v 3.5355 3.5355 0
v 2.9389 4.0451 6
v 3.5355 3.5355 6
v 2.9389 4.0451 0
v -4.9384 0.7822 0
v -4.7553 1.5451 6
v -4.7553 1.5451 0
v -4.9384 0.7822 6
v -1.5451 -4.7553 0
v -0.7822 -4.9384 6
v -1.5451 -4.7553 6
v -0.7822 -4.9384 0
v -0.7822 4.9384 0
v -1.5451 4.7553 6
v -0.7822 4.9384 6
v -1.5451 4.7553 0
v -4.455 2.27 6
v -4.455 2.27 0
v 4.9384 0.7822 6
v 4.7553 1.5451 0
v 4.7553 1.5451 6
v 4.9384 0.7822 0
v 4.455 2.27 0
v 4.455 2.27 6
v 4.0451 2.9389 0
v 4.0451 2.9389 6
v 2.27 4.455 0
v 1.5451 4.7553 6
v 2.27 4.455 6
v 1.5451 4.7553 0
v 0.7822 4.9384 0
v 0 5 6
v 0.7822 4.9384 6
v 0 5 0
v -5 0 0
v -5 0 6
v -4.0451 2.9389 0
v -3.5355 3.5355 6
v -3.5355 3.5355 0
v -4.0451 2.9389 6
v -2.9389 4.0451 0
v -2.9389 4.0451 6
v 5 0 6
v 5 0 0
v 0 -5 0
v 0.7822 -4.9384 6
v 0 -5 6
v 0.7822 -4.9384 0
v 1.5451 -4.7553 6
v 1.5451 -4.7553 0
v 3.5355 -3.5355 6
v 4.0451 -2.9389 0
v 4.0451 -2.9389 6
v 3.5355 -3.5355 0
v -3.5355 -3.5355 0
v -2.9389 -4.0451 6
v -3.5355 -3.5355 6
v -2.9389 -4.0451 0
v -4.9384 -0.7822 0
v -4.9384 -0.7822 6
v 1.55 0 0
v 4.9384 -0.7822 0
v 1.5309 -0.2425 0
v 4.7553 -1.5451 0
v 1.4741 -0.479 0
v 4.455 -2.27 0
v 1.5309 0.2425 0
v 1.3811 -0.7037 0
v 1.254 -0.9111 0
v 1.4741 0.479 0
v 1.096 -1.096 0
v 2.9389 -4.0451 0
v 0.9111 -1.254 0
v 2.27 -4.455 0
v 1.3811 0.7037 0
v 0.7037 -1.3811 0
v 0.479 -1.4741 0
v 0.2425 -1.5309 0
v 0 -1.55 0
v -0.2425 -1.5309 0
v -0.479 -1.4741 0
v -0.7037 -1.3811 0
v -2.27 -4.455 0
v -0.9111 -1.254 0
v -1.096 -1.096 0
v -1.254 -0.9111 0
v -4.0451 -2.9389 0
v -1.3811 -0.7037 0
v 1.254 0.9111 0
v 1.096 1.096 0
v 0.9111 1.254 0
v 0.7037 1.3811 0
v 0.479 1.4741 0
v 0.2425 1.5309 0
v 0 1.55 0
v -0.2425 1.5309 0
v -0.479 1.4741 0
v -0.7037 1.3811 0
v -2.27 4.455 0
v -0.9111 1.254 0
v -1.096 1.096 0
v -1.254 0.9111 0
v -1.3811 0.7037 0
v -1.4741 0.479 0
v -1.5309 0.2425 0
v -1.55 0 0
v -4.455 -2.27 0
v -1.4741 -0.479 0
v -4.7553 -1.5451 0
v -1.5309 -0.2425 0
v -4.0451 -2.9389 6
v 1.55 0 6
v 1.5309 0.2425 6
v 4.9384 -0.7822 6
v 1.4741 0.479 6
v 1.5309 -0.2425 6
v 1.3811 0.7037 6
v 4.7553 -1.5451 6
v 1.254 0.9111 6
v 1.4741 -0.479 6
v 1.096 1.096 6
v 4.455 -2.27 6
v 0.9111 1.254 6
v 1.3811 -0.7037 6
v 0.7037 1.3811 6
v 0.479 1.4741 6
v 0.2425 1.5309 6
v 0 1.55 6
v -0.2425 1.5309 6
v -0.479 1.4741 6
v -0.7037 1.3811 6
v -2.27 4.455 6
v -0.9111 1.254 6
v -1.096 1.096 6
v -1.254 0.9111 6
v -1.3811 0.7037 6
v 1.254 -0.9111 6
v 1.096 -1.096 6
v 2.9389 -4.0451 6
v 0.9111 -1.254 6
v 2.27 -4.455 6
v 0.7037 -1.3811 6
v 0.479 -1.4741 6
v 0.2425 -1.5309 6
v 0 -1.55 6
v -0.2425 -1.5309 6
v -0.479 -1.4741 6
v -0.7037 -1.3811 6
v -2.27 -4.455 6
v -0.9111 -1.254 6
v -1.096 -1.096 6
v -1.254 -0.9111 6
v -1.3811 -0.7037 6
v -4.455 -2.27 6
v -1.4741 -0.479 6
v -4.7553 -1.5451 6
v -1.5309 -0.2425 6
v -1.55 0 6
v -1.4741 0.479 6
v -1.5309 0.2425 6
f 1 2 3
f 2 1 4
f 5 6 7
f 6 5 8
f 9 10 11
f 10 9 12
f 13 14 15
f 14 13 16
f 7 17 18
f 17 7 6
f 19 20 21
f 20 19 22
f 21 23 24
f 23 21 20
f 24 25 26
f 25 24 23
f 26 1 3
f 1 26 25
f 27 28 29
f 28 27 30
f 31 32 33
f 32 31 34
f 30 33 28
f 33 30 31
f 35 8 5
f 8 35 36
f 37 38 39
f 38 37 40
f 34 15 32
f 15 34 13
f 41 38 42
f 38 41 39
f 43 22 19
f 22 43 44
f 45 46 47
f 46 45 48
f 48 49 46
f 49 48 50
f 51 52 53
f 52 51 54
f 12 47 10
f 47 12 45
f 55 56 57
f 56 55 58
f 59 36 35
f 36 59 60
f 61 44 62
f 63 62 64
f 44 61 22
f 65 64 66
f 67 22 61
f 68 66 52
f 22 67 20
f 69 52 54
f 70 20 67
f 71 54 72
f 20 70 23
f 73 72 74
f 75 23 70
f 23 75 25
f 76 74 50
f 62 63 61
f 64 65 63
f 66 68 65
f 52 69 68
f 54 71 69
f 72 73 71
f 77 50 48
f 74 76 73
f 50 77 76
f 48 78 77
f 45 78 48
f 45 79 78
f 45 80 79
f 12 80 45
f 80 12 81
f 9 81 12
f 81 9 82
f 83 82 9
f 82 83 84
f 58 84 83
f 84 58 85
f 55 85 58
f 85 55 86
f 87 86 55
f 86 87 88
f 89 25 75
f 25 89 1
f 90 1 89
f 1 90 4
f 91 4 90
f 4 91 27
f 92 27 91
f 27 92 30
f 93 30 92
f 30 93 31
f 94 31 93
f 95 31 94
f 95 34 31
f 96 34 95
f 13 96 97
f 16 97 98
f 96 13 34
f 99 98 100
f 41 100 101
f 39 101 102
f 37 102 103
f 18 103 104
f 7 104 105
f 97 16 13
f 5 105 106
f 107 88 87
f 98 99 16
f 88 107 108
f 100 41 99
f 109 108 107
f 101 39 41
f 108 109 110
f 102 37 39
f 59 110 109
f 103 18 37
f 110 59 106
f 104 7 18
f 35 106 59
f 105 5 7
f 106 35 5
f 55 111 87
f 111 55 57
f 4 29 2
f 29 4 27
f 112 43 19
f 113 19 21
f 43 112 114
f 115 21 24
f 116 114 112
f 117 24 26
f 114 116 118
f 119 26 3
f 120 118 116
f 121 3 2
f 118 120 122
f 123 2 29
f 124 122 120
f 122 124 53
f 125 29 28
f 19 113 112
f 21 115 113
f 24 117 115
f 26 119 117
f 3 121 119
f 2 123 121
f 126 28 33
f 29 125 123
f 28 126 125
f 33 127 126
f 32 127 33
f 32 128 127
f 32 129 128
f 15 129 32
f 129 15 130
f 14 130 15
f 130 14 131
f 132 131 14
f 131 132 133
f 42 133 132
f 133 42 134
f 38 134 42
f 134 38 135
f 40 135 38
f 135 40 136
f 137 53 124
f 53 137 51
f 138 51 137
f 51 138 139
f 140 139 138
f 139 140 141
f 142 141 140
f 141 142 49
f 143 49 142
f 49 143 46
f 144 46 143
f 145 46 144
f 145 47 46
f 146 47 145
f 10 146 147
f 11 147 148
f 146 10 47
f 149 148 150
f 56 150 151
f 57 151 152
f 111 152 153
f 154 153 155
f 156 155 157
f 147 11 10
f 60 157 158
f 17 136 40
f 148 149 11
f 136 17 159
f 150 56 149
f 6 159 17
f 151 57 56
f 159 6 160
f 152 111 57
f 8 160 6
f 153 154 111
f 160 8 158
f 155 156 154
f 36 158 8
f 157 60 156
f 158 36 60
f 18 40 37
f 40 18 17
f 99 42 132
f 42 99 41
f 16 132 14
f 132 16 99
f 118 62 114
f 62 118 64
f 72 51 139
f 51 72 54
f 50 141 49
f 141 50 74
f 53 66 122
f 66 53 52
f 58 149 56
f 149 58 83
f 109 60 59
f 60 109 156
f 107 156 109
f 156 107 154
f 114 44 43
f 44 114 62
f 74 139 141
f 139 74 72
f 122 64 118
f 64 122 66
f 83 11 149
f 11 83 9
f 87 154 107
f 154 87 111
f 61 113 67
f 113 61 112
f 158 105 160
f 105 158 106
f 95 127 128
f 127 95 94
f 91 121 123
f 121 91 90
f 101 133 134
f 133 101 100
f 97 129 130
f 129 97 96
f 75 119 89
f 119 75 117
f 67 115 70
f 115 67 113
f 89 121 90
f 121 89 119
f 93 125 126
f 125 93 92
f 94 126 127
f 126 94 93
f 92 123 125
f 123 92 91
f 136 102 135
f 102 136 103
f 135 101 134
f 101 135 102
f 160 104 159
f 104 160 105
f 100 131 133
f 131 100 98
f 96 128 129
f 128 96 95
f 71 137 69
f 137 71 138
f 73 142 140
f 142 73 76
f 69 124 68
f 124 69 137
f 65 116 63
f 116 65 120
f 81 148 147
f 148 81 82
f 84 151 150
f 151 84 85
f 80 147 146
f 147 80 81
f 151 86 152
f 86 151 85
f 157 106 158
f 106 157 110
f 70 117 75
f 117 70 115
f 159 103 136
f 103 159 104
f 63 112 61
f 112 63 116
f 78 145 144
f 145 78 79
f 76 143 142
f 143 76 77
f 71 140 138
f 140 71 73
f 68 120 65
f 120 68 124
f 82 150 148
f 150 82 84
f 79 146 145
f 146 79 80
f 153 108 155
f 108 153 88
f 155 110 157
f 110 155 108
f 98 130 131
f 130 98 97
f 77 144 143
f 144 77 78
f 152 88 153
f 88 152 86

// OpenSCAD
smooth = 40;

difference()
{

color("green")
cylinder(6,d=10,$fn=smooth);

color("red")
translate([0,0,-1])
cylinder(10,d=3.1,$fn=smooth);

}
